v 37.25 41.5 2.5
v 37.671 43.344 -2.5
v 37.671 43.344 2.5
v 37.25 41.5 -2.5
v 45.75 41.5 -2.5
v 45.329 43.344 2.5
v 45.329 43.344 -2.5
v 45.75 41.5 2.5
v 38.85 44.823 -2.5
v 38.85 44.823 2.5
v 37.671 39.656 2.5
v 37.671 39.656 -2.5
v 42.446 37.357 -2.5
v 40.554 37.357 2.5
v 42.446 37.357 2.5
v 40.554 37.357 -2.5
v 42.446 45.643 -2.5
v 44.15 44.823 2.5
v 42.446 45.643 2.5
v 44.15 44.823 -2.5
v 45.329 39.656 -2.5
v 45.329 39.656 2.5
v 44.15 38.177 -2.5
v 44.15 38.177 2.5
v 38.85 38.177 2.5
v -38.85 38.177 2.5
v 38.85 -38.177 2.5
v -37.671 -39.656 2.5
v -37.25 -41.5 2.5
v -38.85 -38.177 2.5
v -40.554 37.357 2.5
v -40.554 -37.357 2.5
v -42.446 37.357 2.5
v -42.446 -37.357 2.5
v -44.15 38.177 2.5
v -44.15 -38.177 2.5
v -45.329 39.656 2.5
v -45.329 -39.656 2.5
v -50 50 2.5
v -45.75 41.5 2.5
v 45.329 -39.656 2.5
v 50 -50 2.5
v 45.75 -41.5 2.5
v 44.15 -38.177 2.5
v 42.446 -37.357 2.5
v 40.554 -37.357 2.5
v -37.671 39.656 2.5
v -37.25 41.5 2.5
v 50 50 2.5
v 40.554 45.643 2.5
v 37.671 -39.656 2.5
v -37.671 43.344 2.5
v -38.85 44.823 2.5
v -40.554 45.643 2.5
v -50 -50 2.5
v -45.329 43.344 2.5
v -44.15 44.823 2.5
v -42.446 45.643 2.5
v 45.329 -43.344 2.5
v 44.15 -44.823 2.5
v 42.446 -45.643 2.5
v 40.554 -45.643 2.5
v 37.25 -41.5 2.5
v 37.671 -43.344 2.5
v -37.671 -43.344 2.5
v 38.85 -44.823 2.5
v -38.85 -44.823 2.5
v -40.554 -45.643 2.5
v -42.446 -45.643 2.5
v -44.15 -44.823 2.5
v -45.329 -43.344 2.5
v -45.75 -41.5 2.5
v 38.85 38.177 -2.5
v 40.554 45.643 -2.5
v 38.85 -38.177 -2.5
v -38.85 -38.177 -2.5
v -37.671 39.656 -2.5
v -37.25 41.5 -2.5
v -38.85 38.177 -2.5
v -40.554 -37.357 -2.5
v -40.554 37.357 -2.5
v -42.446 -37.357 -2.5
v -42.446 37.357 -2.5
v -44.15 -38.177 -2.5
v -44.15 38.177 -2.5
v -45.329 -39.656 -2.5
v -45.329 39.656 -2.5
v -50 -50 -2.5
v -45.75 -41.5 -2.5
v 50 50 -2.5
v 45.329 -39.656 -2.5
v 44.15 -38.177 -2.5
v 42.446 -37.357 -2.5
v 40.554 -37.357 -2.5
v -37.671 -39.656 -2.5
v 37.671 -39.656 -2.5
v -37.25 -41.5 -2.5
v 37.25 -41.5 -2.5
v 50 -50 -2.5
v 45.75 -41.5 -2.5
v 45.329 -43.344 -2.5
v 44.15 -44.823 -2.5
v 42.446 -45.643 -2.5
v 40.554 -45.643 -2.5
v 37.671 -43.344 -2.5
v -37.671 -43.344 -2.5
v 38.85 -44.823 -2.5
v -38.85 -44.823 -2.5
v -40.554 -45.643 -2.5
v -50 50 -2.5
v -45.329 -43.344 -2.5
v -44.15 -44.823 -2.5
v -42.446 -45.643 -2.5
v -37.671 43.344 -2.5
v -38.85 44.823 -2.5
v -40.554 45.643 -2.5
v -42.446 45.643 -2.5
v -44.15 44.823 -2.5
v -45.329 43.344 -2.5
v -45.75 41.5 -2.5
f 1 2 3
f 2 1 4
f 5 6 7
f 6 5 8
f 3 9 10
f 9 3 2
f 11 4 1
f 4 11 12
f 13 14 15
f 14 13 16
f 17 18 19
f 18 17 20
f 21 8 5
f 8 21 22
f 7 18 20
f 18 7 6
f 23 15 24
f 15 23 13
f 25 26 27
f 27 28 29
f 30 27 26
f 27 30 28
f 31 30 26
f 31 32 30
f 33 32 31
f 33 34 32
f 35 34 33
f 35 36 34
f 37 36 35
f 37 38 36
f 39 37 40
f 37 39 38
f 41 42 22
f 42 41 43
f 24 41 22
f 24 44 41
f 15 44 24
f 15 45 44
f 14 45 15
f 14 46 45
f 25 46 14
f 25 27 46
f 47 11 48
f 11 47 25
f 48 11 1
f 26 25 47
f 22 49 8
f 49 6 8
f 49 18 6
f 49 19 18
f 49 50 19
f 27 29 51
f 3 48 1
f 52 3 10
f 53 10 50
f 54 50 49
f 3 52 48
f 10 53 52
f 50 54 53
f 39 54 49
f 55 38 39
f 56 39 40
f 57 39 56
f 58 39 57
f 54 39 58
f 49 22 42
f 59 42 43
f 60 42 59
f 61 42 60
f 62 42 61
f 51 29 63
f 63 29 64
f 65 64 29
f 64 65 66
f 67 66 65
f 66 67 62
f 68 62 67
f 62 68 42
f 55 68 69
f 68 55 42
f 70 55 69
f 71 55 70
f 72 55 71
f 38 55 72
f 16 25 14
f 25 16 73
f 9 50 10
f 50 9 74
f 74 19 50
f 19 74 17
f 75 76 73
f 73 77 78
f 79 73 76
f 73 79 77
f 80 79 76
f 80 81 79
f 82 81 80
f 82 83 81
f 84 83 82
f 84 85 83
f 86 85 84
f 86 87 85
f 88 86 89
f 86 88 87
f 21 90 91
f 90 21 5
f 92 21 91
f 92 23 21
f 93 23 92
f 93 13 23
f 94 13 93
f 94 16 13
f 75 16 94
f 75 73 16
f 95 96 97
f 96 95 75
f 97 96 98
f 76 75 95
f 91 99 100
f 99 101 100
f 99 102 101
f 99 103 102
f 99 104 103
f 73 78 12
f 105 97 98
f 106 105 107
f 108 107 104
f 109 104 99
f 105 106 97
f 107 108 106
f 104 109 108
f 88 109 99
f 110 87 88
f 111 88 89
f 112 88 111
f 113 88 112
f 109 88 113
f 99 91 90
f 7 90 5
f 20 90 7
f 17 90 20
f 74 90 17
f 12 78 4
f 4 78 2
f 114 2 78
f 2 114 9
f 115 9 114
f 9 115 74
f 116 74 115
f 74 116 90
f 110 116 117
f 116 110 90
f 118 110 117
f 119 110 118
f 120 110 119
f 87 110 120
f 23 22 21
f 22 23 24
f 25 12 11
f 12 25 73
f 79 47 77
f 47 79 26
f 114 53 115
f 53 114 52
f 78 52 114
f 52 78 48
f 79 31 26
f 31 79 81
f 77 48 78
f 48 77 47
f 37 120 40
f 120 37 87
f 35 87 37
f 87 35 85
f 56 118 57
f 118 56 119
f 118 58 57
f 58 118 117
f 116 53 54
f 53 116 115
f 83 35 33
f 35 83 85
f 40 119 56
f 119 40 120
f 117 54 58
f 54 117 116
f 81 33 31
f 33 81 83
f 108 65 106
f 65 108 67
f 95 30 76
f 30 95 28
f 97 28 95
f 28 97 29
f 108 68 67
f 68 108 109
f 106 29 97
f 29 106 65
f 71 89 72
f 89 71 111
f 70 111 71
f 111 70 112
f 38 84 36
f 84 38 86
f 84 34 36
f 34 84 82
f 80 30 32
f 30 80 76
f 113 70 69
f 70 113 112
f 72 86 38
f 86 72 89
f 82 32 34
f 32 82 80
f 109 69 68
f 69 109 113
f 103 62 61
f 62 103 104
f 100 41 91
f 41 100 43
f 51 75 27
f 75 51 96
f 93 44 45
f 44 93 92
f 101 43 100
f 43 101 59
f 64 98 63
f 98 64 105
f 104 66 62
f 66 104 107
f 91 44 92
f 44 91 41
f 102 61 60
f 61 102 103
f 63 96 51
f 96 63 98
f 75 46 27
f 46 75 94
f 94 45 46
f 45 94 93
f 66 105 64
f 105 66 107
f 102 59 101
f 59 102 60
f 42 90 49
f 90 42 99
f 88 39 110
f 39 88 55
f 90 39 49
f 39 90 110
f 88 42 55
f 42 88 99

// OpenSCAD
// Generated by SolidPython 1.1.3 on 2023-10-12 11:56:06


difference() {
	cube(center = true, size = [100, 100, 5]);
	union() {
		translate(v = [41.5000000000, 41.5000000000]) {
			cylinder(center = true, h = 5, r = 4.2500000000);
		}
		translate(v = [-41.5000000000, 41.5000000000]) {
			cylinder(center = true, h = 5, r = 4.2500000000);
		}
		translate(v = [-41.5000000000, -41.5000000000]) {
			cylinder(center = true, h = 5, r = 4.2500000000);
		}
		translate(v = [41.5000000000, -41.5000000000]) {
			cylinder(center = true, h = 5, r = 4.2500000000);
		}
	}
}
/***********************************************
*********      SolidPython code:      **********
************************************************
 
import solid
import numbers
import pudb
from solid.utils import *
import viewscad
import subprocess
import os
import os.path as osp
import math
import sys

chamfer_extrude=solid.import_scad("./chamfer_extrude.scad")
chamfer_extrude=chamfer_extrude.chamfer_extrude
r = viewscad.Renderer(width=800, height=800)

def debug(model,f_name,path="/home/ts/code/projects/mfd/designs/debug"):
    solid.scad_render_to_file(model,osp.join(path,f_name)+".scad")
#generate position list of wells using offset from center
wells_pos_from_center_4 = lambda offset: [[-offset,offset],
                                        [offset, offset],
                                        [-offset, -offset],
                                        [offset, -offset]]
#wells_pos_from_center_2 = lambda offset: [[0,offset],
#                                        [0, -offset]]
wells_pos_from_center_2 = lambda offset: [[offset,0],
                                        [-offset,0]]

def make_well(dims,shape=None,height=None,dxf=False):
    def circle_cylinder():
        if dxf or (height is None):
            well = solid.circle(r=dims, segments=64)
        else:
            well = solid.cylinder(r=dims, h=height, segments=64, center = True)
        return well
    if dims is None:
        sys.exit("radius needs to be a number")
    if isinstance(dims, numbers.Number):
        well =circle_cylinder()
    elif len(dims)==1:
        if isinstance(dims[1], numbers.Number):
            well =circle_cylinder()
        else:
            sys.exit("radius needs to be a number")
    elif len(dims)==2:
        well = solid.square(dims,center = True)
    elif len(dims)==3:
        well = solid.cube(dims, center = True)
    return well

def wells_top_bottom(center_gap,device_dims=None,shape=None,height=None, positions = None, dxf = False):
    well_shape = make_well(device_dims,shape=shape,height=height,dxf=dxf)
    wells = []
    if positions is None:
        offset = radius+radius/2.0
        positions = wells_pos_from_center_2(offset)
    if dxf or (height is None):
        height = 0
    for position in positions:
        if dxf:
            wells.append(solid.translate([position[0],position[1]])(well_shape))
        else:
            wells.append(solid.translate([position[0],position[1],height/2.0])(well_shape))
    return  union()(*wells)

#place wells in four corners 
def four_corner(radius,height=None, positions = None, dxf = False):
    #if well pos not specified set
    #to equally spaced by half radius
    if positions is None:
        offset = radius+radius/2.0
        positions = wells_pos_from_center_4(offset)
    if dxf or (height is None):
        height = 0
    #make wells at positions with specified radius and height
    wells = []
    for position in positions:
        #make circle if making dxf
        if dxf:
            well_shape = solid.circle(r=radius, segments=64)
            well_shape = solid.translate([position[0],position[1]])(well_shape)
        #if stl make cylinder
        else:
            well_shape = solid.cylinder(r=radius, h=height, segments=64, center = True)
            well_shape = solid.translate([position[0],position[1],height/2.0])(well_shape)
        wells.append(well_shape)
    return  union()(*wells)

#generate channels 
def make_channels(length,width,height=0,num_chans=1,max_chans=None,spacing=None, dxf = False,
                  rotate_channels=False):
    if dxf or (height is None):
        height = 0
    #if channel gap not defined, is equal to
    if spacing is None: spacing = width
    #calculate number of channels if fitting max num within given width
    if not max_chans is None:
        import math
        num_chans = math.floor((max_chans-spacing)/(width+spacing))
    #get total width of channel section  
    total_width = (width*num_chans)+(spacing*(num_chans-1))

    #make template channel
    #if rotate_channels: width, length = length, width
    if dxf:
        channel_t = solid.square([length,width],center = True)
    else:
        channel_t = solid.cube([length,width,height], center = True)

    #if number channels is even, offset the first channel to center its gap
    if num_chans % 2 == 0: centering = -(width/2.0+spacing/2.0)
    else: centering = 0
    #move template channel up to align bottom at z = 0 
    #and offset center if necessary
    if dxf:
        channel_t = solid.translate([0,centering])(channel_t)
    else:
        channel_t = solid.translate([0,centering,height/2.0])(channel_t)

    #if rotate_channels: length,width = width,length
    #start making the channels
    channels = []
    for i in range(num_chans):
        #if i=0 there is no translation
        #if i=1, we make the first channel adjacent to second
        direction = i

        #if i>=1, we add channels alternating left and right
        if i >= 1:
            direction = -(i/2.0)
            if i % 2 == 1: direction = (-direction)+0.5
                
        #make channel at right position and add it to channel list
        translation_coords = [0,direction*(width+spacing)]
        #if rotate_channels: translation_coords = [direction*(width+spacing),0]
        if dxf:
            channel = solid.translate(translation_coords)(channel_t)
        else:
            channel = solid.translate([*translation_coords,0])(channel_t)
        channels.append(channel)
    
    #group all channels as one object
    channels = union()(*channels)
    #compute the x,y,z dimensions in order to pass as arguments 
    #for construction of other parts of device (such as the chambers)
    measurements = {'x':(length/2.0,-length/2.0),
                    'y':(total_width/2.0,-total_width/2.0)}
    if not dxf:
        measurements['z'] = (height,0)
    if rotate_channels:
        channels = solid.rotate(90)(channels)
        measurements['x'],measurements['y']=measurements['y'],measurements['x']
    return channels,measurements

def make_chambers(msrs,height=None,extra=0,len_until=None,width=None, dxf = False):
    #computes x,y,z length
    total = lambda x : abs(x[0]) + abs(x[1])
    
    #if specific height if specified
    #otherwise use same height as channels
    if dxf:
        pass
    elif not height is None:
        msrs['z'] = (height,0)
    else:
        msrs['z'] = (0,0)
        
    #make copy of measurements from channels to modify chamber dimensions 
    #and add length to chambers as specified
    chamber_dims = msrs.copy()
    #calculate length of chamber to reach specified offset
    if not len_until is None:
        chamber_len = len_until-(msrs['x'][0])
    #or add specified length to channel length (if not specified, adds 0)
    else:
        chamber_len = msrs['x'][0]+extra
    #set the chamber length based 
    chamber_dims['x'] = (chamber_len/2.0,-(chamber_len/2.0))
    #compute final dimensions of chamber
    if not width is None:
        chamber_dims['y'] = (width/2.0,-width/2.0)
    chamber_dims = [total(size) for size in chamber_dims.values()]
        
    #calculate chamber translation offset to place adjacent to channels
    chamber_trslt = msrs['x'][0]+(chamber_len/2.0)
    #compute chamber translation coordinates to align with channels
    #x = 1 moves chamber above channels
    #x = -1 moves chamber below channels
    if dxf:
        trslt = lambda x : [x*(chamber_trslt),0]
    else:
        trslt = lambda x : [x*(chamber_trslt),0,msrs['z'][0]/2.0]
    
    #function to make chamber at top or at bottom 
    if dxf:
        move = lambda x : solid.translate(trslt(x))(solid.square(chamber_dims, center = True) )
    else:
        move = lambda x : solid.translate(trslt(x))(solid.cube(chamber_dims,center = True))
    #make top and bottom chambers and return them as grouped
    top = move(1)
    bottom = move(-1)
    #chambers=solid.rotate(90)(solid.union()(top,bottom))
    chambers=(solid.union()(top,bottom))

    return chambers

#create alignment features 
def alignment_features(unit,dims,grid_size, mask_size = None, alignment = "hollow", units_from_center = (2.5,2.5), corner_len=None):
    width = grid_size[0]*dims[0]
    length = grid_size[1]*dims[1]
    if mask_size is None and corner_len is None:
        corner_len = (dims[0] + dims[1]) /2 / 8
    corner = lambda thickness_div : solid.union()( solid.square([corner_len,corner_len/thickness_div],center=False), solid.square([corner_len/thickness_div,corner_len],center=False) )
    
    def make_full(thickness_div):
        thickness = corner_len/thickness_div
        tr = solid.translate([0, 0, 0 ])(solid.rotate(180)(corner(thickness_div)))
        tr = solid.translate([thickness/2,thickness/2,0])(tr)
        bl = solid.translate([0, 0, 0 ])(solid.rotate(0)(corner(thickness_div)))
        bl = solid.translate([-thickness/2,-thickness/2,0])(bl)
        return solid.union()(tr,bl)
    
    def make_hollow(thickness_div):
        thickness = corner_len/(thickness_div/2)
        inner = make_full(thickness_div)
        outer = make_full(thickness_div/2)
        hollow = outer - inner 
        return hollow
    
    center = (width /2 , length/2)
    mask_pos = lambda x,y : (center[0] + x*(float(units_from_center[0])*dims[0]), center[1] + y*(float(units_from_center[1])*dims[1]))
    positions = []
    positions.append(mask_pos(1,0))
    positions.append(mask_pos(0,1))
    positions.append(mask_pos(-1,0))
    positions.append(mask_pos(0,-1))
    make_mask = lambda mtype : make_hollow(8) if mtype == "hollow" else make_full(8)
    masks = [ solid.translate([*position,0])(make_mask(alignment)) for position in positions]
    
    solid.scad_render_to_file(solid.union()(*masks),"./designs/open_chamber/masks.scad")
    #return unit - solid.union()(*masks)
    return solid.union()(*masks,unit)

def create_outline(thickness, array, dims, grid_size,):
    width = grid_size[0]*dims[0] + thickness *2
    length = grid_size[1]*dims[1] + thickness *2
    outer = solid.translate([-thickness, -thickness,0])(solid.square([width, length]))
    return outer-array

def create_wall(wall_thickness, outline_thickness, dims, grid_size, wall_height = 2000, dxf = False):
    inner_width = grid_size[0]*dims[0] + outline_thickness *2
    inner_length = grid_size[1]*dims[1] + outline_thickness *2
    outer_width = inner_width + wall_thickness * 2
    outer_length = inner_length + wall_thickness * 2
    outer_pos_x = -outline_thickness-wall_thickness
    outer_pos_y = -outline_thickness-wall_thickness
    inner_pos_x = -outline_thickness
    inner_pos_y = -outline_thickness
    if dxf:
        inner_wall = solid.translate([inner_pos_x,
                                      inner_pos_y,
                                      0])(solid.square([inner_width, inner_length]))
        outer_wall = solid.translate([outer_pos_x,
                                      outer_pos_y,
                                      0])(solid.square([outer_width, outer_length]))

        return outer_wall-inner_wall
    else:
        inner_wall = solid.translate([inner_pos_x,
                                      inner_pos_y,
                                      0])(solid.cube([inner_width, inner_length,wall_height]))
        outer_wall = solid.translate([outer_pos_x,
                                      outer_pos_y,
                                      0])(solid.cube([outer_width, outer_length,wall_height]))

        return outer_wall-inner_wall, {'wall_height': wall_height,
                                       'wall_thickness': wall_thickness,
                                       'inner_width':inner_width,
                                       'inner_length': inner_length,
                                       'outer_width': outer_width,
                                       'outer_length': outer_length,
                                       'outer_pos_x' : outer_pos_x,
                                       'outer_pos_y' : outer_pos_y,
                                       'inner_pos_x' : inner_pos_x,
                                       'inner_pos_y' : inner_pos_y}

def create_thicker_wall(wall_thickness, outer_wall_offset, wall_dims, dims, grid_size, height_start = .2, height_end=2, dxf = False):
    addon_wall,thicker_wall_dims = create_wall(wall_thickness, outer_wall_offset, dims, grid_size, wall_height=height_end-height_start, dxf = False)
    addon_wall = solid.translate([0,0,height_start])(addon_wall)

    thicker_wall_dims['wall_height'] = height_end
    thicker_wall_dims['wall_thickness'] = wall_dims['wall_thickness'] + wall_thickness
    return addon_wall, thicker_wall_dims
 
def add_lock_to_wall(wall,wall_dims,y_offset = 0,cut_ratio=0.7,L_length=3, gap_ratio=0.05, axis="x",width_ratio=1/2):
    # Makes L shape
    def make_L(max_length,length_thickness,max_width,width_thickness,height,y_offset):
        length = solid.cube([max_length,length_thickness,height])
        width = solid.cube([width_thickness,max_width,height])
        width = solid.translate([max_length-(width_thickness),0,0])(width)
        L = solid.union()(width,length)
        debug(L,"L")
        if axis == "x":
            L = solid.rotate(-90)(L)
            L = solid.translate([0,max_length,0])(L)
        else:
            L = solid.rotate(-180)(L)
            L = solid.translate([max_length,max_width,0])(L)
        return solid.translate([0,0,y_offset])(L)
    
    lock_length = L_length
    lock_width = wall_dims['wall_thickness']*width_ratio
    lock_length_thickness = lock_width/2
    lock_width_thickness = lock_width/2
    L_lock = make_L(lock_length,lock_length_thickness,lock_width,lock_width_thickness, wall_dims['wall_height']-y_offset, y_offset)
    
    margin_space = lock_length - lock_length*(1-gap_ratio)
    key_length = lock_length-margin_space
    key_length_thickness = lock_length_thickness-(margin_space*2)
    key_width = lock_width-(margin_space*2)
    key_width_thickness = lock_width_thickness-(margin_space*2)
    L_key = make_L(key_length,key_length_thickness,key_width,key_width_thickness, wall_dims['wall_height']-y_offset, y_offset)
    L_key = solid.translate([margin_space,margin_space,0])(L_key)
    L = solid.union()(L_lock,L_key)
    debug(L,"L")
    
    #Make cube to be used as negative to split frame in a half
    #Can choose if making left or right negative, specify ratio of split
    def make_negative(right,cut_ratio):
        if axis == "x":
            if right:
                length = wall_dims['outer_length']*(1-cut_ratio)
                pos_x = wall_dims['outer_pos_x']+(wall_dims['outer_length']*cut_ratio)
            else:
                length = wall_dims['outer_length']*(cut_ratio)
                pos_x = wall_dims['outer_pos_x'] 
            negative = solid.cube([wall_dims['outer_width'],length, wall_dims['wall_height']])
            negative = solid.translate([wall_dims['outer_pos_y'],pos_x,0])(negative)
        else:
            if right:
                length = wall_dims['outer_width']*(1-cut_ratio)
                pos_x = wall_dims['outer_pos_y']+(wall_dims['outer_width']*cut_ratio)
            else:
                length = wall_dims['outer_width']*(cut_ratio)
                pos_x = wall_dims['outer_pos_y'] 
            negative = solid.cube([length,wall_dims['outer_length'], wall_dims['wall_height']])
            negative = solid.translate([pos_x,wall_dims['outer_pos_x'],0])(negative)
        return negative, pos_x, length 
                      
    #Make negatives
    negative_right, right_half_pos_x, right_half_length = make_negative(True,cut_ratio)
    negative_left, left_half_pos_x, right_half_length = make_negative(False,cut_ratio)
    #Make halves
    left_half = solid.difference()(wall,negative_right)
    right_half = solid.difference()(wall,negative_left)
    def place_L(L, L_length,L_width):
        #Place L on top wall       
        offset_to_center = (wall_dims['wall_thickness']-L_width)/2
        if axis == "x":
            y_pos_top = (wall_dims['outer_pos_y'] +
                    wall_dims['outer_width'] - 
                    L_width - offset_to_center)
            top_L = solid.translate([y_pos_top,
                                     right_half_pos_x-(L_length),
                                     0])(L)
            #Place L on bottom wall       
            y_pos_bottom = wall_dims['outer_pos_y']+offset_to_center
            bottom_L = solid.translate([y_pos_bottom,
                                        right_half_pos_x-L_length,
                                        0])(L)
        else:
            y_pos_top = (wall_dims['outer_pos_x'] +
                    wall_dims['outer_length'] -
                    (L_width+offset_to_center))
            top_L = solid.translate([right_half_pos_x-L_length,
                                     y_pos_top,
                                     0])(L)
            #Place L on bottom wall       
            y_pos_bottom = wall_dims['outer_pos_y']+offset_to_center
            bottom_L = solid.translate([right_half_pos_x-L_length,
                                        y_pos_bottom,
                                        0])(L)
        return bottom_L, top_L
    #Make complimentary L pieces through union and differences
    #Make Lock
    bottom_L_lock, top_L_lock = place_L(L_lock,L_length,lock_width)
    left_half = solid.difference()(left_half,bottom_L_lock)
    left_half = solid.difference()(left_half,top_L_lock)
    #Make Key
    bottom_L_key, top_L_key = place_L(L_key,L_length,lock_width)
    right_half = solid.union()(right_half,bottom_L_key)
    right_half = solid.union()(right_half,top_L_key)
    return left_half, right_half


#build a row x col grid of containment units
def make_unit_array(unit,dims,grid_size, dxf = False, alignment = None, mask_size = None,
                    units_from_center = None,alignment_offset=None, alignment_mark_size=1):
    units = []
    for col in range(grid_size[1]):
        for row in range(grid_size[0]):
            if dxf:
                units.append(solid.translate([row*dims[0],col*dims[1]])(unit))
            else:
                units.append(solid.translate([row*dims[0],col*dims[1],dims[2]/2.0])(unit))
    array = solid.union()(*units)
    if (not alignment is None) and dxf:
        if not alignment_offset is None:
            array = solid.translate([alignment_offset[0],alignment_offset[1]])(array)
        array = alignment_features(array,dims, grid_size, alignment = alignment, mask_size = None, units_from_center = units_from_center,corner_len=alignment_mark_size)
        if not alignment_offset is None:
            array = solid.translate([-alignment_offset[0],-alignment_offset[1]])(array)
    return array


def make_taylor(wells_pos = wells_pos_from_center_4(2.25), well_rad = 1.5 ,
                well_height = 2, chan_w = 0.01, chan_l = 1, chan_h = 0.010 ,
                chan_gap = 0.040, max_chans = None,num_chans=100, chamber_height  = 0.100,
                columns = 1, rows = 1, chamber_len_until=2.25, add_channels = True, add_wells = True, 
                add_chambers = True, save_path = "./", alignment = None, units_from_center = 2,
                mask_size = None, render_stl = False, outline_thickness = 0.050, dxf = True,
                wall_height = 15, wall_thickness = 0.95, casing_x=9, casing_y=9, casing_z=0,rotate_units=0):

    dims = [casing_x, casing_y, casing_z]
    wells = four_corner(well_rad,well_height, dxf = dxf, positions = wells_pos)
    debug(wells,"wells")
    channels, msrs = make_channels(chan_l,chan_w,chan_h,dxf=dxf, spacing = chan_gap, max_chans=max_chans,num_chans=num_chans)
    debug(channels,"channels")
    chambers = make_chambers(msrs,dxf = dxf, height=chamber_height,len_until=chamber_len_until)
    debug(chambers,"chambers")

    #add together and render
    device_parts = []
    if add_channels:
        device_parts.append(channels)
    if add_wells:
        device_parts.append(wells)
    if add_chambers:
        device_parts.append(chambers)
    device=union()(*device_parts)
    device = rotate(rotate_units)(device)

    device=solid.translate([dims[0]/2.0,dims[1]/2.0,0])(device)
    channels = rotate(rotate_units)(channels)
    channels=solid.translate([dims[0]/2,dims[1]/2,0])(channels)
    chambers_wells = union()(wells,chambers)
    chambers_wells = rotate(rotate_units)(chambers_wells)
    chambers_wells=solid.translate([dims[0]/2,dims[1]/2,0])(chambers_wells)

    file_name = str(rows)+'x'+str(columns)+'_units_'
    grid_size = [rows,columns]

    if alignment:
        alignment="full"
    device = make_unit_array(device,dims,grid_size, dxf=dxf, alignment = alignment,
                                 units_from_center = units_from_center)
    channels = make_unit_array(channels,dims,grid_size, dxf=dxf, alignment = alignment,
                                 units_from_center = units_from_center)
    if alignment=="full":
        alignment="hollow"

    chambers_wells = make_unit_array(chambers_wells,dims,grid_size, dxf=dxf, alignment = alignment,
                                 units_from_center =units_from_center)

    def save_model(model,prefix):
        model_fname = os.path.abspath(save_path+prefix+"_"+file_name+".scad")
        solid.scad_render_to_file(model,model_fname)
        return model_fname

    wells_fname = save_model(wells,"wells")
    channels_fname = save_model(channels,"channels")
    device_fname = save_model(device,"device")
    chambers_wells_fname = save_model(chambers_wells,"chambers_wells")
    return (chambers_wells,chambers_wells_fname), (channels,channels_fname), (device,device_fname)

def make_device(design='open',rows=8,columns=6,wells_pos = 4.5,well_offset=3.2, well_rad=3.2,well_height=0.1,
                chan_l=1,chan_w=0.01,chan_h=0.01,chan_gap=0.015,num_chans=101,dxf=True,save_path="./designs/open_chamber/",
                casing_x=9.0,casing_y=18.0,casing_z=0,rotate_units=90,units_from_center=(3,1),chamber_len_until=4.5,
                chamber_width=None,alignment=True, add_wells=True, add_channels=True,add_chambers=True):

    dims = [casing_x, casing_y, casing_z]
    if design == "open":
        wells_pos=wells_pos_from_center_2(wells_pos)
        wells = wells_top_bottom(well_offset*2,device_dims=well_rad,height=well_height, dxf = dxf, positions = wells_pos)
    elif design == "closed":
        wells_pos=wells_pos_from_center_4(wells_pos)
        debug(wells,"wells")
        wells = four_corner(well_offset,well_heightdevice_dims=well_rad, dxf = dxf, positions = wells_pos)
    else:
        print(design+" is not a valid design.\n Choose valid design: 'open' or 'closed'")
        exit()
    wells = rotate(rotate_units)(wells)
    wells=solid.translate([dims[0]/2,dims[1]/2,0])(wells)
    debug(wells,"wells")

    channels, msrs = make_channels(chan_l,chan_w,chan_h,dxf=dxf, spacing = chan_gap, num_chans=num_chans,rotate_channels=False)
    channels = rotate(rotate_units)(channels)
    channels=solid.translate([dims[0]/2,dims[1]/2,0])(channels)

    chambers=make_chambers(msrs,height=None,extra=0,len_until=chamber_len_until, width=chamber_width,dxf = dxf)
    chambers = rotate(rotate_units)(chambers)
    chambers=solid.translate([dims[0]/2,dims[1]/2,0])(chambers)

    device_parts = []
    if add_channels:
        device_parts.append(channels)
    if add_wells:
        device_parts.append(wells)
    if add_chambers:
        device_parts.append(chambers)
    device = union()(*device_parts)
    #device = rotate(rotate_units)(device)
    #device=solid.translate([dims[0]/2.0,dims[1]/2.0,0])(device)

    chambers_wells = []
    if add_chambers:
        chambers_wells.append(chambers)
    if add_wells:
        chambers_wells.append(wells)
    chambers_wells = union()(*chambers_wells)
    #chambers_wells = union()(wells,chambers)
    #chambers_wells = rotate(rotate_units)(chambers_wells)
    #chambers_wells=solid.translate([dims[0]/2,dims[1]/2,0])(chambers_wells)

    file_name = str(rows)+'x'+str(columns)+'_units_'

    grid_size = [rows,columns]
    if alignment:
        alignment="full"
    device = make_unit_array(device,dims,grid_size, dxf=dxf, alignment = alignment,
                                 units_from_center = units_from_center)
    channels = make_unit_array(channels,dims,grid_size, dxf=dxf, alignment = alignment,
                                 units_from_center = units_from_center)
    if alignment=="full":
        alignment="hollow"

    chambers_wells = make_unit_array(chambers_wells,dims,grid_size, dxf=dxf, alignment = alignment,
                                 units_from_center =units_from_center)

    def save_model(model,prefix):
        model_fname = os.path.abspath(save_path+prefix+"_"+file_name+".scad")
        solid.scad_render_to_file(model,model_fname)
        return model_fname

    wells_fname = save_model(wells,"wells")
    channels_fname = save_model(channels,"channels")
    device_fname = save_model(device,"device")
    chambers_wells_fname = save_model(chambers_wells,"chambers_wells")
    return (chambers_wells,chambers_wells_fname), (channels,channels_fname), (device,device_fname)


def make_open_chamber(rows=8,columns=6,wells_pos = wells_pos_from_center_2(4.5), well_rad=3.2,well_height=0.1,
                      chan_l=1,chan_w=0.01,chan_h=0.01,chan_gap=0.015,num_chans=101,dxf=True,save_path="./designs/open_chamber/",
                      casing_x=9.0,casing_y=18.0,casing_z=0,rotate_units=90,units_from_center=(3,1),chamber_len_until=4.5,
                      chamber_width=None,alignment=True, add_wells=True, add_channels=True,add_chambers=True):

    dims = [casing_x, casing_y, casing_z]
    wells = wells_top_bottom(well_rad,height=well_height, dxf = dxf, positions = wells_pos)
    channels, msrs = make_channels(chan_l,chan_w,chan_h,dxf=dxf, spacing = chan_gap, num_chans=num_chans,rotate_channels=False)
    chambers=make_chambers(msrs,height=None,extra=0,len_until=chamber_len_until, width=chamber_width,dxf = dxf)
    debug(chambers,"chambers")
    device_parts = []
    if add_channels:
        device_parts.append(channels)
    if add_wells:
        device_parts.append(wells)
    if add_chambers:
        device_parts.append(chambers)
    device = union()(*device_parts)
    device = rotate(rotate_units)(device)
    device=solid.translate([dims[0]/2.0,dims[1]/2.0,0])(device)
    channels = rotate(rotate_units)(channels)
    channels=solid.translate([dims[0]/2,dims[1]/2,0])(channels)
    chambers_wells = union()(wells,chambers)
    chambers_wells = rotate(rotate_units)(chambers_wells)
    chambers_wells=solid.translate([dims[0]/2,dims[1]/2,0])(chambers_wells)

    file_name = str(rows)+'x'+str(columns)+'_units_'

    grid_size = [rows,columns]
    if alignment:
        alignment="full"
    device = make_unit_array(device,dims,grid_size, dxf=dxf, alignment = alignment,
                                 units_from_center = units_from_center)
    channels = make_unit_array(channels,dims,grid_size, dxf=dxf, alignment = alignment,
                                 units_from_center = units_from_center)
    if alignment=="full":
        alignment="hollow"

    chambers_wells = make_unit_array(chambers_wells,dims,grid_size, dxf=dxf, alignment = alignment,
                                 units_from_center =units_from_center)

    def save_model(model,prefix):
        model_fname = os.path.abspath(save_path+prefix+"_"+file_name+".scad")
        solid.scad_render_to_file(model,model_fname)
        return model_fname

    wells_fname = save_model(wells,"wells")
    channels_fname = save_model(channels,"channels")
    device_fname = save_model(device,"device")
    chambers_wells_fname = save_model(chambers_wells,"chambers_wells")
    return (chambers_wells,chambers_wells_fname), (channels,channels_fname), (device,device_fname)

def to_dxf(scad_path):
    dxf_path = scad_path.replace(".scad",".dxf")
    subprocess.call(["openscad", "-o", dxf_path, scad_path])
    import ezdxf
    temp_dxf = ezdxf.readfile(dxf_path)
    temp_dxf.saveas(dxf_path)

#def make_walls(diameter,thickness,grid_size,dims,height=20,segments=256,make_inner=True):
#    wafer_wall_out = solid.cylinder(r=diameter/2,h=height, segments=segments)
#    wafer_wall_in = solid.cylinder(r=(diameter/2-thickness),h=height, segments=segments)
#    wafer_wall = solid.difference()(wafer_wall_out,wafer_wall_in)
#    wafer_wall = solid.translate([grid_size[1]*dims[1]/2.0,grid_size[0]*dims[0]/2.0])(wafer_wall)
#
#    vertical_wall_length = grid_size[1]*dims[1]
#    horizontal_wall_length = grid_size[0]*dims[0]
#    vertical_wall = solid.cube([vertical_wall_length,thickness,height],center = True)
#    vertical_wall = solid.translate([vertical_wall_length/2,0,height/2])(vertical_wall)
#    horizontal_wall = solid.cube([thickness,horizontal_wall_length,height],center = True)
#    horizontal_wall = solid.translate([0,vertical_wall_length/2,height/2])(horizontal_wall)
#    walls = []
#    walls.append(horizontal_wall)
#    walls.append(vertical_wall)
#    for col in range(grid_size[1]):
#        if col == grid_size[1]-1: 
#            walls.append(solid.translate([0,(col+1)*dims[1]])(vertical_wall))
#        elif col > 0 and col < grid_size[1]-1 and make_inner==True:
#            walls.append(solid.translate([0,(col+1)*dims[1]])(vertical_wall))
#    for row in range(grid_size[0]):
#        if row == grid_size[0]-1: 
#            walls.append(solid.translate([(row+1)*dims[0],0])(horizontal_wall))
#        elif row > 0 and row < grid_size[0]-1 and make_inner==True:
#            walls.append(solid.translate([(row+1)*dims[0],0])(horizontal_wall))
#    walls = union()(*walls)
#    wafer_walls = union()(walls,wafer_wall)
#    return walls,wafer_wall,wafer_walls

def make_walls(diameter,thickness,grid_size,dims,height=20,segments=256,make_inner=True,padx=0,pady=0):
    wafer_wall_out = solid.cylinder(r=diameter/2,h=height, segments=segments)
    wafer_wall_in = solid.cylinder(r=(diameter/2-thickness),h=height, segments=segments)
    wafer_wall = solid.difference()(wafer_wall_out,wafer_wall_in)
    wafer_wall = solid.translate([grid_size[1]*dims[1]/2.0,grid_size[0]*dims[0]/2.0])(wafer_wall)

    vertical_wall_length = grid_size[0]*dims[0]+padx
    horizontal_wall_length = grid_size[1]*dims[1]+pady
    vertical_wall = solid.cube([vertical_wall_length,thickness,height],center = True)
    vertical_wall = solid.translate([vertical_wall_length/2-pady/2,-padx/2,height/2])(vertical_wall)
    horizontal_wall = solid.cube([thickness,horizontal_wall_length,height],center = True)
    horizontal_wall = solid.translate([-pady/2,horizontal_wall_length/2-padx/2,height/2])(horizontal_wall)
    walls = []
    walls.append(horizontal_wall)
    walls.append(vertical_wall)
    for col in range(grid_size[1]):
        if col == grid_size[1]-1: 
            walls.append(solid.translate([0,(col+1)*dims[1]+pady])(vertical_wall))
        elif col > 0 and col < grid_size[1]-1 and make_inner==True:
            walls.append(solid.translate([0,(col+1)*dims[1]])(vertical_wall))
    for row in range(grid_size[0]):
        if row == grid_size[0]-1: 
            walls.append(solid.translate([(row+1)*dims[0]+padx,0])(horizontal_wall))
        elif row > 0 and row < grid_size[0]-1 and make_inner==True:
            walls.append(solid.translate([(row+1)*dims[0],0])(horizontal_wall))
    walls = union()(*walls)
    wafer_walls = union()(walls,wafer_wall)
    return walls,wafer_wall,wafer_walls

def save_model(model,base_path,base_name,dxf=True):
    if not os.path.exists(base_path):
        os.makedirs(base_path)
    dxf_path=osp.join(base_path,base_name+".scad")
    solid.scad_render_to_file(model,osp.join(dxf_path))
    if dxf:
        to_dxf(dxf_path)

def make_wafer(diameter,flat_len,thickness):
    wafer = solid.cylinder(r1=diameter/2,r2=diameter/2,h=thickness,segments=512,)()
    x_start_flat=(flat_len/2)
    y_start_flat = math.sqrt(((diameter/2)**2) - (x_start_flat**2) )
    height_delete_flat=diameter/2-y_start_flat
    flat_delete = solid.cube([flat_len,height_delete_flat,thickness],center=False)()
    flat_delete = solid.translate([-flat_len/2,y_start_flat,0])(flat_delete)
    wafer = solid.difference()(wafer,flat_delete)
    wafer = solid.rotate(90)(wafer)
    return wafer

def add_wafer_to_mask(wafer_size,flat_len,mask,grid_size,dims,wafer_line_thickness=0.1,outer_mask_thickness=5,alignment_offset=None):
    def make_wafer_mask(wafer_size,flat_len):
        wafer_mask = make_wafer(wafer_size,flat_len,1)
        wafer_mask = solid.projection()(wafer_mask)
        wafer_mask = solid.translate([grid_size[0]*dims[0]/2.0,grid_size[1]*dims[1]/2.0])(wafer_mask)
        if not alignment_offset is None:
            wafer_mask = solid.translate([-alignment_offset[0],-alignment_offset[1]])(wafer_mask)
        return wafer_mask

    inner_wafer_line_mask = make_wafer_mask(wafer_size-wafer_line_thickness/2,flat_len)
    outer_wafer_line_mask = make_wafer_mask(wafer_size+wafer_line_thickness/2,flat_len)
    outer_wafer_mask = make_wafer_mask(wafer_size+outer_mask_thickness,flat_len)
    outer_wafer_mask = solid.difference()(outer_wafer_mask,outer_wafer_line_mask)
    wafer_mask = solid.union()(outer_wafer_mask,inner_wafer_line_mask)

    return solid.difference()(wafer_mask,mask)

def make_posts(post_shape,post_height):
    posts = solid.linear_extrude(height=post_height)(post_shape)
    return posts

def make_wafer_empty(diameter,flat_len,thickness,margin,notch_len=20,notch_height=5,oversize=1.01):
    diameter*=oversize
    flat_len*=oversize
    wafer = make_wafer(diameter,flat_len,thickness)
    holder = solid.cylinder(r1=diameter/2+margin,r2=diameter/2+margin,h=thickness,segments=512)()
    holder = solid.difference()(holder,wafer)

    x_start_flat=(flat_len/2)
    y_start_flat = math.sqrt(((diameter/2)**2) - (x_start_flat**2) )
    height_delete_flat=diameter/2-y_start_flat
    notch = solid.cube([notch_len,notch_height,thickness],center=False)()
    notch = solid.translate([-notch_len/2,y_start_flat,0])(notch)
    notch = solid.rotate(90)(notch)
    return solid.difference()(holder,notch)

def wafer_print_calibration(diameter,thickness,height,z_offset):
    circles = []
    radii = []
    radii.append(diameter/2.0*0.8)
    radii.append(diameter/2.0*0.6)
    radii.append(diameter/2.0*0.4)
    radii.append(diameter/2.0*0.2)
    for radius in radii:
        inner = solid.cylinder(r1=radius-(thickness/2.0),r2=radius-(thickness/2.0),h=thickness,segments=512,)()
        outer = solid.cylinder(r1=radius+(thickness/2.0),r2=radius+(thickness/2.0),h=thickness,segments=512,)()
        diff = solid.difference()(outer,inner)
        circles.append(diff)
    circles = solid.union()(*circles)
    circles = solid.translate([0,0,z_offset])(circles)
    return circles

def make_rack(wells,dims,grid_size,alignment_offset,rack_x,rack_y,rack_thickness,bolt_width,add_bolts=True):

    #get X and Y dimensions of gride of pipette tips
    X_len = dims[0]*grid_size[0]
    Y_len = dims[1]*grid_size[1]
    #make rack
    rack = solid.cube([rack_x,rack_y,rack_thickness],center=True)

    if add_bolts:
    #add bolt holes
        bolt_hole=solid.cylinder(r=bolt_width/2,h=rack_thickness,center=True)()
        bolt_holes = []
        bolt_holes.append(solid.translate([rack_x/2-1.5*bolt_width,rack_y/2-1.5*bolt_width])(bolt_hole))
        bolt_holes.append(solid.translate([-rack_x/2+1.5*bolt_width,rack_y/2-1.5*bolt_width])(bolt_hole))
        bolt_holes.append(solid.translate([-rack_x/2+1.5*bolt_width,-rack_y/2+1.5*bolt_width])(bolt_hole))
        bolt_holes.append(solid.translate([rack_x/2-1.5*bolt_width,-rack_y/2+1.5*bolt_width])(bolt_hole))
        bolt_holes = solid.union()(*bolt_holes)
        rack=solid.difference()(rack,bolt_holes)
    rack_support = rack

    #center rack with pipette holes
    rack = solid.translate([0,0,rack_thickness/2])(rack)
    rack = solid.translate([X_len/2,Y_len/2])(rack)
    rack = solid.translate([-alignment_offset[0],-alignment_offset[1]])(rack)
    wells = solid.linear_extrude(height=rack_thickness)(wells)
    rack = solid.difference()(rack,wells)
    return rack, rack_support

def make_pillar(wells,dims,grid_size,alignment_offset,rack_x,rack_y,pillar_height,rack_thickness,bolt_width,add_bolts=True,taper_angle=1,bolt_position_corner=1.5):

    #get X and Y dimensions of gride of pipette tips
    X_len = dims[0]*grid_size[0]
    Y_len = dims[1]*grid_size[1]
    #make rack
    rack = solid.cube([rack_x,rack_y,rack_thickness],center=True)
    
    if add_bolts:
    #add bolt holes
        bolt_hole=solid.cylinder(r=bolt_width/2,h=rack_thickness,center=True)()
        bolt_holes = []
        bolt_holes.append(solid.translate([rack_x/2-bolt_position_corner*bolt_width,rack_y/2-bolt_position_corner*bolt_width])(bolt_hole))
        bolt_holes.append(solid.translate([-rack_x/2+bolt_position_corner*bolt_width,rack_y/2-bolt_position_corner*bolt_width])(bolt_hole))
        bolt_holes.append(solid.translate([-rack_x/2+bolt_position_corner*bolt_width,-rack_y/2+bolt_position_corner*bolt_width])(bolt_hole))
        bolt_holes.append(solid.translate([rack_x/2-bolt_position_corner*bolt_width,-rack_y/2+bolt_position_corner*bolt_width])(bolt_hole))
        bolt_holes = solid.union()(*bolt_holes)
        rack=solid.difference()(rack,bolt_holes)
    rack_support = rack

    #center rack with pipette holes
    #rack = solid.translate([0,0,-rack_thickness])(rack)
    rack = solid.translate([X_len/2,Y_len/2])(rack)
    rack = solid.translate([-alignment_offset[0],-alignment_offset[1]])(rack)
    if not taper_angle == 0:
        wells=chamfer_extrude(pillar_height,taper_angle,segments=20)(wells)
    else:
        wells = solid.linear_extrude(height=pillar_height)(wells)
    rack = solid.union()(rack,wells)
    return rack, rack_support

def deg_taper_len(height,deg):
    if not deg == 0:
        return height*math.tan(math.radians(deg))
    else:
        return 0









 
 
************************************************/
